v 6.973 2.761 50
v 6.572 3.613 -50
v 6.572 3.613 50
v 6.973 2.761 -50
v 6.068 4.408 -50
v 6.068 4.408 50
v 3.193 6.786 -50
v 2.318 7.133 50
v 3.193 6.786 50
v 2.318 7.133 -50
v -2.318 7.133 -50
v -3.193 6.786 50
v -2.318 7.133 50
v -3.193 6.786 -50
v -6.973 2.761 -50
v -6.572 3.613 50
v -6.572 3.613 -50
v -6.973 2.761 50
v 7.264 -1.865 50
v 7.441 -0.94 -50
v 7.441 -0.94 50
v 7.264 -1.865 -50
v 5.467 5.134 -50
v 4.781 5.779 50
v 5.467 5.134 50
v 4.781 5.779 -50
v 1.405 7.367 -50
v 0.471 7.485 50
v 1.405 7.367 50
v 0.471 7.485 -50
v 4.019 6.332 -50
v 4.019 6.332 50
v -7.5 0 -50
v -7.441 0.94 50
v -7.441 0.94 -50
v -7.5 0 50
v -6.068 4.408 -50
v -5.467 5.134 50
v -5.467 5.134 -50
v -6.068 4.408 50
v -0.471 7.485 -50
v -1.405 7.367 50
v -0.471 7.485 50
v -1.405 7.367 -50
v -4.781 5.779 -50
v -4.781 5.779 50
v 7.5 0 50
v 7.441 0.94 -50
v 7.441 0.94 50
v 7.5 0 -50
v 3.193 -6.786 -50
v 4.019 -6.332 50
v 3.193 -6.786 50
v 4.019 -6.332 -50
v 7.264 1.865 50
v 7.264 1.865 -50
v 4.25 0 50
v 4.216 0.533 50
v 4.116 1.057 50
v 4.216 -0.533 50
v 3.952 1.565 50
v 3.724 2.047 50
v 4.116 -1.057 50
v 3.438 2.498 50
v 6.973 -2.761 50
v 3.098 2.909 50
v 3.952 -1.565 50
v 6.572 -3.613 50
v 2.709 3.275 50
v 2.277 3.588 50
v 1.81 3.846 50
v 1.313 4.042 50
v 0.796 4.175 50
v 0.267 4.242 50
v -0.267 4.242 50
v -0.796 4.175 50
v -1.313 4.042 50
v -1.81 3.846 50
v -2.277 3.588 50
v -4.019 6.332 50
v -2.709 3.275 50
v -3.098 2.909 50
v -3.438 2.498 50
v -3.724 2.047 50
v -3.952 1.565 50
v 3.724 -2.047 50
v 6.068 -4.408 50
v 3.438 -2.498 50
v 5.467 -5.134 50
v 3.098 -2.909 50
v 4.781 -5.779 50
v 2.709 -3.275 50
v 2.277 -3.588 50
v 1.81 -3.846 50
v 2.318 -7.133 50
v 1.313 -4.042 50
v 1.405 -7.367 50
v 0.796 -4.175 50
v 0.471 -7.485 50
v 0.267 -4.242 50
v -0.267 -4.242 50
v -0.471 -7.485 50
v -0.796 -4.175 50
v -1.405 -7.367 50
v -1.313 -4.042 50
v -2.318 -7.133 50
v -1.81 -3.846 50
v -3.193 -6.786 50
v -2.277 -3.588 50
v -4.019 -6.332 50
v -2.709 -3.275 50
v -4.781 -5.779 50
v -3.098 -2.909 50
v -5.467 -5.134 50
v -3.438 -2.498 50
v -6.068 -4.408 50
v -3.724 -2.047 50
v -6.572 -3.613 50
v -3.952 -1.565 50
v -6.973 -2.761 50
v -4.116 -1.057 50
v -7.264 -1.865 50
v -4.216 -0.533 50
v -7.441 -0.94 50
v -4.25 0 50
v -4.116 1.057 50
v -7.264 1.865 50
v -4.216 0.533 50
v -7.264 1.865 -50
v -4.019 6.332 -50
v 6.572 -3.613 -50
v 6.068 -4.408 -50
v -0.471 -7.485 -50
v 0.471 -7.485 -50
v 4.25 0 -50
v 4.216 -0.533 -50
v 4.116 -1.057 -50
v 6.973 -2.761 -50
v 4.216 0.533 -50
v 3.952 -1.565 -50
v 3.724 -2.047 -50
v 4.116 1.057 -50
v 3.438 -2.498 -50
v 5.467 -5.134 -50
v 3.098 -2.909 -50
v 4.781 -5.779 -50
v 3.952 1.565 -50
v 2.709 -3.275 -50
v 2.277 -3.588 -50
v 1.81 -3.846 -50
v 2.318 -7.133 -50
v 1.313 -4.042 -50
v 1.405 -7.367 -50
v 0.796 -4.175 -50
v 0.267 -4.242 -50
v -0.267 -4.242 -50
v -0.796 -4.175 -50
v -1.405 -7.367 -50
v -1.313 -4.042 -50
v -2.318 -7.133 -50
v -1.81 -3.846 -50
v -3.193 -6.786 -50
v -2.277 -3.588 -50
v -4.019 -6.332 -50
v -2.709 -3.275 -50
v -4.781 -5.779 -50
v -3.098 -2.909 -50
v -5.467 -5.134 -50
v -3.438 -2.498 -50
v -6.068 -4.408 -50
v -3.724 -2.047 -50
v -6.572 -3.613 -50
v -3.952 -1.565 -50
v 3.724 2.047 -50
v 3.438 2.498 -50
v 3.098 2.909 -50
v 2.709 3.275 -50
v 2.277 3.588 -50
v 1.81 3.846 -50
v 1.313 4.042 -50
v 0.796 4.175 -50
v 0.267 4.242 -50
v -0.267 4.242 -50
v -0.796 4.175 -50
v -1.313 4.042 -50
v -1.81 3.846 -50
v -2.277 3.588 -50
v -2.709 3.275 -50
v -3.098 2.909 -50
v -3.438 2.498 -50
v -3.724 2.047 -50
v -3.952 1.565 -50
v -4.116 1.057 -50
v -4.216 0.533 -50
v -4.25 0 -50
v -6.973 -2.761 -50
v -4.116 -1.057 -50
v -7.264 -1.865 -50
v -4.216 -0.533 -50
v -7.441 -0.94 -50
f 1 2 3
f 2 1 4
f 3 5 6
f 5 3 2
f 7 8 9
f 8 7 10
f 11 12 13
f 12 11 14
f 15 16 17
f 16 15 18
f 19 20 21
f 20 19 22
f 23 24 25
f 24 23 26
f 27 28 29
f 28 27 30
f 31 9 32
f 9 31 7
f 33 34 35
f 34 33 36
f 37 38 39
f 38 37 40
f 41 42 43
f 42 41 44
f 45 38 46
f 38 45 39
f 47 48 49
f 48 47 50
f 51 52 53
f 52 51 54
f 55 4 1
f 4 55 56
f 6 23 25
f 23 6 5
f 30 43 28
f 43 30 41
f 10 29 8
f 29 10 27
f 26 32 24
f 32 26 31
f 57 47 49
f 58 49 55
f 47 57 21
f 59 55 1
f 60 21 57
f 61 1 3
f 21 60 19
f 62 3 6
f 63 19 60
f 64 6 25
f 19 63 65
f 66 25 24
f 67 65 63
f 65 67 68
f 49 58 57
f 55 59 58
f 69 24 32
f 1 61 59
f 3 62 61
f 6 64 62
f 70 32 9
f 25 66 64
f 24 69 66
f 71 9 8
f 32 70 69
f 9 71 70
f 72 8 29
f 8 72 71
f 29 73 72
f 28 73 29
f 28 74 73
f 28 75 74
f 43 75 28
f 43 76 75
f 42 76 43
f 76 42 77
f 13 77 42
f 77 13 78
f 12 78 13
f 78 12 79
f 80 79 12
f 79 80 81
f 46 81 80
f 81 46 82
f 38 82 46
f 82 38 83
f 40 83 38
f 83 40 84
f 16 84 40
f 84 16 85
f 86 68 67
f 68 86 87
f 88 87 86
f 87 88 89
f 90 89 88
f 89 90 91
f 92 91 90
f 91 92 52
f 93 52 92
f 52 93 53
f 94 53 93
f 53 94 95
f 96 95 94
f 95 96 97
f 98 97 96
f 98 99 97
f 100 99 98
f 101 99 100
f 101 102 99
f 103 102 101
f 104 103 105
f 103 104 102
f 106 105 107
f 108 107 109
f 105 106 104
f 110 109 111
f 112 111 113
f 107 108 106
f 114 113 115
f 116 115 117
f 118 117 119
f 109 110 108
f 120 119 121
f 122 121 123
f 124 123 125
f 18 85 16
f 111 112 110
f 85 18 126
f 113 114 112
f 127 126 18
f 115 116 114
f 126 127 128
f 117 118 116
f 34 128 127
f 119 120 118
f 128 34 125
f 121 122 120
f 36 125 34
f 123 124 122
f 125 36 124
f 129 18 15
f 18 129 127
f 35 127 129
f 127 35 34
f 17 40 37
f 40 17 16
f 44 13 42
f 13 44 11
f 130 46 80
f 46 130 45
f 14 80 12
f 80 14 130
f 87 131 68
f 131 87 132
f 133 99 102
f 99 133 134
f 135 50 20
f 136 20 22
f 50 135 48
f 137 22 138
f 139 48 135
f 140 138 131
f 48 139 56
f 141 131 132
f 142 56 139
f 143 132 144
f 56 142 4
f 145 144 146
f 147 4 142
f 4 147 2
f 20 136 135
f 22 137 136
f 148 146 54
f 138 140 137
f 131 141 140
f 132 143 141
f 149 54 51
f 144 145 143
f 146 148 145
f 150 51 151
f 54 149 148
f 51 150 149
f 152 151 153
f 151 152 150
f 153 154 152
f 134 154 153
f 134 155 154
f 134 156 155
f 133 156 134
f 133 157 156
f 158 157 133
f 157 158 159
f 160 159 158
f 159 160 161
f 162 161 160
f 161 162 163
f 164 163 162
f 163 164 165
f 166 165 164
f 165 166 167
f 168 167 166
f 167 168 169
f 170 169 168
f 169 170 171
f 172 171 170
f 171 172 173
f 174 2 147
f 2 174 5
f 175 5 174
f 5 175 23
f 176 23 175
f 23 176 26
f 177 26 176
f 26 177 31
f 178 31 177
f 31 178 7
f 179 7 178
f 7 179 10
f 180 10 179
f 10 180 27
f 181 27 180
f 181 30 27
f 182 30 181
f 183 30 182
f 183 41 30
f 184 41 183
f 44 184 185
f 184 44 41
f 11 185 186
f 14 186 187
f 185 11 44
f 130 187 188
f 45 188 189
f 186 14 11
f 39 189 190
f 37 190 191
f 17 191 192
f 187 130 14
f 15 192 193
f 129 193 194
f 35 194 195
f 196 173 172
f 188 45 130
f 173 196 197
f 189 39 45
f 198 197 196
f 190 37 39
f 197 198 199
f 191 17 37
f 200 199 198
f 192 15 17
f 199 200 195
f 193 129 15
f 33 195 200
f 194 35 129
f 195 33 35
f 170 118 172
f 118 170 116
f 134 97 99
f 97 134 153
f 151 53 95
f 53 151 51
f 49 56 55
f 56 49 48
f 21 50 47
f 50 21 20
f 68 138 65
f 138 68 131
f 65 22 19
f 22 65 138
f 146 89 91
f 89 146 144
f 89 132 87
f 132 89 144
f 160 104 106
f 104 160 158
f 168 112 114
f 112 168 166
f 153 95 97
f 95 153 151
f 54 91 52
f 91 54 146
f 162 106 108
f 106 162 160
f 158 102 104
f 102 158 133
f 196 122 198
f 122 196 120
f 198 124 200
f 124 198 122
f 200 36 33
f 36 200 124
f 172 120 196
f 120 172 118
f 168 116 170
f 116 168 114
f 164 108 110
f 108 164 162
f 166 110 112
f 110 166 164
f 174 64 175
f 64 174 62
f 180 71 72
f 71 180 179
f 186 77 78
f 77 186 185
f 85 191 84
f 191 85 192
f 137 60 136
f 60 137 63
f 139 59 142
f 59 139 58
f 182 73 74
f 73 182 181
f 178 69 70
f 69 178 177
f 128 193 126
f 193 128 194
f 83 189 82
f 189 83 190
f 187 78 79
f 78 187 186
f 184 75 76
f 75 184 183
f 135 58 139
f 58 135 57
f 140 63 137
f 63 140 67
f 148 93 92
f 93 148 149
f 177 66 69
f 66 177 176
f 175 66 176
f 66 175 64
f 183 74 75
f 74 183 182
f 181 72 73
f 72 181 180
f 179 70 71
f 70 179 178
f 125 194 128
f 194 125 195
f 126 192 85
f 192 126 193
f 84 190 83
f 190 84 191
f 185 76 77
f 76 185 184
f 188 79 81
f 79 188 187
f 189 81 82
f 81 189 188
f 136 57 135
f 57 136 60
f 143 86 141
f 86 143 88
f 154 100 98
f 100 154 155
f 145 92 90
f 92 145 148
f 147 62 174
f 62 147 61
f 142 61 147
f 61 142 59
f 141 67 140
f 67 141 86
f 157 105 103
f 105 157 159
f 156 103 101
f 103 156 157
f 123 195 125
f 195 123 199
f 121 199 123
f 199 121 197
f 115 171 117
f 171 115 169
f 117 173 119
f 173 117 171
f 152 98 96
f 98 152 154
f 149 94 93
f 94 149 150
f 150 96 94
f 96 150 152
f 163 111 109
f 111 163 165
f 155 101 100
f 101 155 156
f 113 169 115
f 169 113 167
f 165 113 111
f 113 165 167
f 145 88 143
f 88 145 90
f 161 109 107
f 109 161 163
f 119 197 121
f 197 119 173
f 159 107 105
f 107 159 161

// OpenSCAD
$fn = 50;


difference() {
	union() {
		translate(v = [0, 0, -50.0000000000]) {
			cylinder(h = 100, r = 7.5000000000);
		}
	}
	union() {
		translate(v = [0, 0, -100.0000000000]) {
			cylinder(h = 200, r = 4.2500000000);
		}
	}
}
